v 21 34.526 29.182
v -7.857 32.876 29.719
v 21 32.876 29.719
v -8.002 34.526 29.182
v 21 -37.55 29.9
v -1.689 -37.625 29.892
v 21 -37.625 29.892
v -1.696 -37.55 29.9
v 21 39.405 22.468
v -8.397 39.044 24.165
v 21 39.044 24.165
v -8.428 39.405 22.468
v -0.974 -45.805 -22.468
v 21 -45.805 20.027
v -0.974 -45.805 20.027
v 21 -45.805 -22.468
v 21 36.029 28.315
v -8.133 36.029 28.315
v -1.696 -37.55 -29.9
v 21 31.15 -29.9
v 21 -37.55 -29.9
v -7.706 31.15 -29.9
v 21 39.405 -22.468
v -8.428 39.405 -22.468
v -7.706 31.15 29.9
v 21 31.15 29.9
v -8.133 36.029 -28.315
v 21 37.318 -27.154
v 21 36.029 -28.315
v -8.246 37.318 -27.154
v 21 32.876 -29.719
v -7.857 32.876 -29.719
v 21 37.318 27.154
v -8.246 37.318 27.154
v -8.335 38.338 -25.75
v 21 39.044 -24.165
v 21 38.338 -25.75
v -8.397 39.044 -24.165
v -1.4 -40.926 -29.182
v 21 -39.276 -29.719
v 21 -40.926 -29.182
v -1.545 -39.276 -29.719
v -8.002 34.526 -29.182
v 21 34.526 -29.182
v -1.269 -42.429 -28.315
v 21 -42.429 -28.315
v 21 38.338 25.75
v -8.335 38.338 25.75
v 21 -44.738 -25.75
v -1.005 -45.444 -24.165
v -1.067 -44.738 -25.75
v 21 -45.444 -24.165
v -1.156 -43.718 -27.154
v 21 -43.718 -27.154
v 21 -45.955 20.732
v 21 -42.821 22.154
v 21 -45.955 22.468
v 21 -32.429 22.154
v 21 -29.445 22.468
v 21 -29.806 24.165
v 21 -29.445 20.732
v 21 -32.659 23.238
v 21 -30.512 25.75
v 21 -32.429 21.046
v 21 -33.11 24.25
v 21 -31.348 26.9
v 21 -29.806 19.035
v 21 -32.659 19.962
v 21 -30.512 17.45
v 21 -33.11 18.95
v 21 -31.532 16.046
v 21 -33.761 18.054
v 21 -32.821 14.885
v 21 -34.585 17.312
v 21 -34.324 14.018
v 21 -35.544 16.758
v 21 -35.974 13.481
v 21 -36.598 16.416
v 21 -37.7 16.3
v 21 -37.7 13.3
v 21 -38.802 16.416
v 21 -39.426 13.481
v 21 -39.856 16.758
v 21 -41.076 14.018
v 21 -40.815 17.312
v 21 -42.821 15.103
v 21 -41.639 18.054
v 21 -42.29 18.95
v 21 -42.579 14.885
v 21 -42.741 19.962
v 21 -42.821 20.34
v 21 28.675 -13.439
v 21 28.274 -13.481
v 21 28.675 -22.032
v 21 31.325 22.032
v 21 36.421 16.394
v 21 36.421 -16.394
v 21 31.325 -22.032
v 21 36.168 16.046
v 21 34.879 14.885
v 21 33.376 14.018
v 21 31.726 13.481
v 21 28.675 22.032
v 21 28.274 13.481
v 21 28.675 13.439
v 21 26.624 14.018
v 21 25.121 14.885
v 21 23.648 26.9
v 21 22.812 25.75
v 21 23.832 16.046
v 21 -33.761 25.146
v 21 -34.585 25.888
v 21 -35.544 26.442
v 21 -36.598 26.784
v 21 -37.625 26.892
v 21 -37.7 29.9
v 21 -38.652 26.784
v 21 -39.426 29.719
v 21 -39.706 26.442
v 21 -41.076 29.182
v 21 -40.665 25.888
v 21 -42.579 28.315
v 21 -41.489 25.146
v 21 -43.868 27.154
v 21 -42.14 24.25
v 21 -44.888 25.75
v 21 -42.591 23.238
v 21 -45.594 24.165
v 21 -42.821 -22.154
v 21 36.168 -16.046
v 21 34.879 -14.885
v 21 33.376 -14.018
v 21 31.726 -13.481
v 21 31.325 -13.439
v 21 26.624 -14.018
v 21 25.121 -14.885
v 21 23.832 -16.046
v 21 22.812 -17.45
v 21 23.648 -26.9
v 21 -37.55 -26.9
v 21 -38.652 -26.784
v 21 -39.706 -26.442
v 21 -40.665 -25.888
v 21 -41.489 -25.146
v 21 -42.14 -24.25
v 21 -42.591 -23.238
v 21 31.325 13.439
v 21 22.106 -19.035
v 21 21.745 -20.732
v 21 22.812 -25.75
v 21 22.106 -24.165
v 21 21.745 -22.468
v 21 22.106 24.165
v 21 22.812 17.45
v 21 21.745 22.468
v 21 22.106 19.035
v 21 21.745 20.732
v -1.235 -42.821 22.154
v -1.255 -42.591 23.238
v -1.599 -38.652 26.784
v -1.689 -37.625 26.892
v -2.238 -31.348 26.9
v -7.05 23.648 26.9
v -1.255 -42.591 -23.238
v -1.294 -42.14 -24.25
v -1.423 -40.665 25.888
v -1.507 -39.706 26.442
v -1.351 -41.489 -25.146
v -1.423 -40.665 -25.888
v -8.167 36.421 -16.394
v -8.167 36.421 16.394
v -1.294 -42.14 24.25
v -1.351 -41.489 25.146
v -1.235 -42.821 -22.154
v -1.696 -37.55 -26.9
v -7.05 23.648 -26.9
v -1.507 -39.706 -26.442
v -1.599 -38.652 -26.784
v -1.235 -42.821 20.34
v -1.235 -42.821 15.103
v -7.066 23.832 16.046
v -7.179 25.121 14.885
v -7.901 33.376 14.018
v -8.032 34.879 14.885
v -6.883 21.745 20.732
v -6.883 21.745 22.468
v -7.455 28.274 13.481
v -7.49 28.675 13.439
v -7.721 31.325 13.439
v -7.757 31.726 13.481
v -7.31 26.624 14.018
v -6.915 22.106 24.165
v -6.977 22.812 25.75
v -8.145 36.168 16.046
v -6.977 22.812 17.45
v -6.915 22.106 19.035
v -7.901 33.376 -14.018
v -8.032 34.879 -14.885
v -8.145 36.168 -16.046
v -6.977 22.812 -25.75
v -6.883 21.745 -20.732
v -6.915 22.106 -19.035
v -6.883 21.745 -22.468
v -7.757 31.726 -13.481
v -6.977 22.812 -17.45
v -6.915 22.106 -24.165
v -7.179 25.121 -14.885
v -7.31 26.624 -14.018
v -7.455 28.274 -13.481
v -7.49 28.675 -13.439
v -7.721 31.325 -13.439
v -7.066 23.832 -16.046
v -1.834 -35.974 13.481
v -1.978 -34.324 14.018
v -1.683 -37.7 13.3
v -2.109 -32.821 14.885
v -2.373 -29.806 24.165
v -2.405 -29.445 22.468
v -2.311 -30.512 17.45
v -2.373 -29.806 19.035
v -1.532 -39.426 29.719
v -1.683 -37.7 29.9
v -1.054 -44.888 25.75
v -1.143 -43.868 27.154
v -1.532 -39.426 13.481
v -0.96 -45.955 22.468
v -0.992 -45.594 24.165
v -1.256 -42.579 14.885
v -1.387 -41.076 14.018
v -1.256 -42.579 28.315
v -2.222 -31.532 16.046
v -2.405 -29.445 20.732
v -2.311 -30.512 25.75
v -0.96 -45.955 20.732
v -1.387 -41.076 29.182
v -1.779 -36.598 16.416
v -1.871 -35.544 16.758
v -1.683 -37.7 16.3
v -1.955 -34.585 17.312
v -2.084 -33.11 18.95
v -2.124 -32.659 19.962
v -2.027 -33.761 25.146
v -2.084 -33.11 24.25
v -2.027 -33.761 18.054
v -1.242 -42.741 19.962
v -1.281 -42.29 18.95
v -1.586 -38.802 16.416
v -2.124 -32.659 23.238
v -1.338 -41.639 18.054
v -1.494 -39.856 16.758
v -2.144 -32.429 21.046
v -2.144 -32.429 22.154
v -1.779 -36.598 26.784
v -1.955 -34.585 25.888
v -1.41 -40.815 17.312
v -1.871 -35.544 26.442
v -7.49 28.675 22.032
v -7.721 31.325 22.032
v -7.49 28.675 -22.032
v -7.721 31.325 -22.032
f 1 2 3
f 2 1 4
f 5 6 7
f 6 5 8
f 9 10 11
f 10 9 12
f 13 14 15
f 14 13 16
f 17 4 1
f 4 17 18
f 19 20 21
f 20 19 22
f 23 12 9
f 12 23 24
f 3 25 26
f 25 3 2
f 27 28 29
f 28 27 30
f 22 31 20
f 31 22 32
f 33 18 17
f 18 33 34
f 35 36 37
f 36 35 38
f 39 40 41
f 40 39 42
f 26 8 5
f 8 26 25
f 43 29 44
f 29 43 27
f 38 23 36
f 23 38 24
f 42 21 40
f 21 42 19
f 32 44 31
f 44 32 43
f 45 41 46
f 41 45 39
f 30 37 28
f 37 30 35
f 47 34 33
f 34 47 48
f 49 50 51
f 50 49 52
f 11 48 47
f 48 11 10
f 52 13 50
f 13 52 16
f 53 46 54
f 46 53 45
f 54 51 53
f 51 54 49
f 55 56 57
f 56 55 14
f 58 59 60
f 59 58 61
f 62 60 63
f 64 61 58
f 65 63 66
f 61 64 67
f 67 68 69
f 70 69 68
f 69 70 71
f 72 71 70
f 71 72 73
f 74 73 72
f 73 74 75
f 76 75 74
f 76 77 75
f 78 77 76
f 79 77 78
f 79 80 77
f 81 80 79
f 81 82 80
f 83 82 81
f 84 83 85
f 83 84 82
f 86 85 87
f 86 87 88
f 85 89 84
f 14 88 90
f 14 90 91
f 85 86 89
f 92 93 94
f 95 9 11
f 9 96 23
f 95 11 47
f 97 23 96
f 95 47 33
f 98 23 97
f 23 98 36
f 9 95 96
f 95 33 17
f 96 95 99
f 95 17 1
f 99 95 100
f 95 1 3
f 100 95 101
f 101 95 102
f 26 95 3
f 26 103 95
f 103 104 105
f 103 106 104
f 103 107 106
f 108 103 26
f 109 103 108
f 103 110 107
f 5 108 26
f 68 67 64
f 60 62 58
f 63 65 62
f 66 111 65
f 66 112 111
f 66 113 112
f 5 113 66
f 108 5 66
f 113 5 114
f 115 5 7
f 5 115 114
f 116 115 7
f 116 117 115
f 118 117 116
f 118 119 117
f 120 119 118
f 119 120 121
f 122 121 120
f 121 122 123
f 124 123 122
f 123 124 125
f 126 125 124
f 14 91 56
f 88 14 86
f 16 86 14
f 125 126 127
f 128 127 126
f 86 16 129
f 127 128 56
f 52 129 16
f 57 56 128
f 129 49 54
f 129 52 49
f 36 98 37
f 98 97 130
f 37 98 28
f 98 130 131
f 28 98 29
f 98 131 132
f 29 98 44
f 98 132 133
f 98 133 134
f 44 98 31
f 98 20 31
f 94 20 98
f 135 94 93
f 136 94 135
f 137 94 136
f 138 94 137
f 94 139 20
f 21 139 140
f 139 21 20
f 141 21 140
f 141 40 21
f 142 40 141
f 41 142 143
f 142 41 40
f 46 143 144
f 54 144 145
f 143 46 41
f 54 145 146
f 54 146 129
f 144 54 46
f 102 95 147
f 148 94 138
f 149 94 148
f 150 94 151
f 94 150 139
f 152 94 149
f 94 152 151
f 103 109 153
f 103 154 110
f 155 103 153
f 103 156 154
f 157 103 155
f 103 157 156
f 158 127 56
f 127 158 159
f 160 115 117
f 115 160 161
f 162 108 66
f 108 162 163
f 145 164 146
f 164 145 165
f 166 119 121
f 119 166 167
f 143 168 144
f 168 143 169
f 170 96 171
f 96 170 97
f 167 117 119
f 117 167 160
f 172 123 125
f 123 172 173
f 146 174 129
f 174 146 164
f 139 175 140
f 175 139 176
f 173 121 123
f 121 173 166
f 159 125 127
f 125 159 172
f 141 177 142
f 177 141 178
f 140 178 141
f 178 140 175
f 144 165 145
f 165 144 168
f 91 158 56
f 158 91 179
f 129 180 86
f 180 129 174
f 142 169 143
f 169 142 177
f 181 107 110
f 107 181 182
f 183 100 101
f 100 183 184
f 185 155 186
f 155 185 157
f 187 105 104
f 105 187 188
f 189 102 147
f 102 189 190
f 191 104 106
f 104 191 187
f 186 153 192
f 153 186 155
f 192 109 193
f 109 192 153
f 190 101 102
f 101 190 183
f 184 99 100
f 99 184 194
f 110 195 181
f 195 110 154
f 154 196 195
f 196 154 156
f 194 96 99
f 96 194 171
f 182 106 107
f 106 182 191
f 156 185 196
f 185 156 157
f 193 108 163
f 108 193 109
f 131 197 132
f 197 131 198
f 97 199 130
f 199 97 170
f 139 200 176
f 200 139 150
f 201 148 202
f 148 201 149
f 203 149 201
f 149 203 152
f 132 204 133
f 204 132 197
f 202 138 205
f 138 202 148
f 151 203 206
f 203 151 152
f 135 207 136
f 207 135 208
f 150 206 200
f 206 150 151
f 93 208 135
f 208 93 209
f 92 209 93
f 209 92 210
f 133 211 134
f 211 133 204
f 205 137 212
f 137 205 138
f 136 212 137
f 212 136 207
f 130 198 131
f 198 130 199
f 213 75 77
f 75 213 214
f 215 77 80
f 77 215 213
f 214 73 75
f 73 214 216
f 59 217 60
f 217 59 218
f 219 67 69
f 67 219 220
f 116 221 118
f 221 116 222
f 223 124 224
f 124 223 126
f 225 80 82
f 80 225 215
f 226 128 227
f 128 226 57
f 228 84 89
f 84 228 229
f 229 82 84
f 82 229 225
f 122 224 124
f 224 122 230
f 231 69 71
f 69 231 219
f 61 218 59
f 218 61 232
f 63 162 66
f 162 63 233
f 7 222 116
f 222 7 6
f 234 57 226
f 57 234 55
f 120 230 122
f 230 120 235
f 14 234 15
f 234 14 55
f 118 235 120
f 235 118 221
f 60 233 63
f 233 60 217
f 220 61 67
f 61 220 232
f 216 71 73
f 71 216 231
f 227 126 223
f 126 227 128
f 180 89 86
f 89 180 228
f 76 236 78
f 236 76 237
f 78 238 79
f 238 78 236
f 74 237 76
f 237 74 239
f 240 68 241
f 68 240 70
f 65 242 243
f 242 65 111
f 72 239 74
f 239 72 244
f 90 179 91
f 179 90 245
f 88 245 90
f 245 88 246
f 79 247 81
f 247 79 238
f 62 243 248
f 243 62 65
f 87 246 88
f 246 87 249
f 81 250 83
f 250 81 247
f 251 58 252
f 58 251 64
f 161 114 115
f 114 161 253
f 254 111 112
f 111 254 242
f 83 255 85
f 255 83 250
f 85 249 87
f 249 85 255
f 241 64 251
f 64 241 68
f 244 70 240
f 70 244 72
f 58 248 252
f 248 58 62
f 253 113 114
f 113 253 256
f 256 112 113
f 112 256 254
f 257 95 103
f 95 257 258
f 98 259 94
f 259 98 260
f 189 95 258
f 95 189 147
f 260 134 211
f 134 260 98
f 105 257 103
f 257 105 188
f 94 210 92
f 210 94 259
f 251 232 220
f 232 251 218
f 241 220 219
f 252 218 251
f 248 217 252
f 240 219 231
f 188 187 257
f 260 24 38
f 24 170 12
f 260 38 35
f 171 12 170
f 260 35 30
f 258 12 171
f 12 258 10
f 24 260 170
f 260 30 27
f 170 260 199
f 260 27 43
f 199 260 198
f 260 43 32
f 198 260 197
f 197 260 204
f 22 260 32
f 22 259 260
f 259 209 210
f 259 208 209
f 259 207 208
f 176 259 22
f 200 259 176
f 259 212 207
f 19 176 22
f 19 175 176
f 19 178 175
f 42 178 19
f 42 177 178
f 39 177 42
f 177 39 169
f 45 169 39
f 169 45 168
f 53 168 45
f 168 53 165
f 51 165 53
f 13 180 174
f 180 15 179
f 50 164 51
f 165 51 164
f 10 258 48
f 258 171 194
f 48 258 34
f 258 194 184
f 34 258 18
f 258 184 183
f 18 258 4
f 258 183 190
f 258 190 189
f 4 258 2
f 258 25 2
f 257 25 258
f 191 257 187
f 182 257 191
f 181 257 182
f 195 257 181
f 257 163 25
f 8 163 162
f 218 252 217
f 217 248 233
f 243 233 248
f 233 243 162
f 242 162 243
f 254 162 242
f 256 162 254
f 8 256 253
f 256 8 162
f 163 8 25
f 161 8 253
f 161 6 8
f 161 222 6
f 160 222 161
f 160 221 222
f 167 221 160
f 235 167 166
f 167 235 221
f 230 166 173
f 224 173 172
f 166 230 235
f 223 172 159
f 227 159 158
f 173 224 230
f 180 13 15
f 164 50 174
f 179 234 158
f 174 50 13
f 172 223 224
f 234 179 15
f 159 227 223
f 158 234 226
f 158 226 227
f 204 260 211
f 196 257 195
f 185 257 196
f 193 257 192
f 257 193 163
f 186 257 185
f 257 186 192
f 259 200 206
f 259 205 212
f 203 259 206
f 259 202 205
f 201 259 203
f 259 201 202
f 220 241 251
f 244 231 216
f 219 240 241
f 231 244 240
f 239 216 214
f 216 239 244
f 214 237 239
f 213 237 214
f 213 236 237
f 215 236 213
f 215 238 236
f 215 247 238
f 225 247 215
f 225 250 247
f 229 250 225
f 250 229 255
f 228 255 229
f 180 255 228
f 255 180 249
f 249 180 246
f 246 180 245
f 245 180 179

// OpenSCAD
// file: ../../../scadLib/library.scad
////////////////////////////////////////////////////////////////////////////////////////////////////
module plate4Point(x,y,z,d){
	hull(){
		color("green") translate([(x/2)-(d/2) ,(y/2) -(d/2),0]) cylinder(h=z, d=d, center=true);
		color("blue")  translate([(x/2)-(d/2) ,-(y/2)+(d/2),0]) cylinder(h=z, d=d, center=true);
		color("red")   translate([-(x/2)+(d/2),(y/2) -(d/2),0]) cylinder(h=z, d=d, center=true);
		color("grey")  translate([-(x/2)+(d/2),-(y/2)+(d/2),0]) cylinder(h=z, d=d, center=true);
	}
}
////////////////////////////////////////////////////////////////////////////////////////////////////
module plate2Point(x,z,d){
	hull(){
		color("green") translate([(x/2) -(d/2),0 ,0]) cylinder(h=z, d=d, center=true);
		color("blue")  translate([-(x/2)+(d/2),0 ,0]) cylinder(h=z, d=d, center=true);
	}
}
////////////////////////////////////////////////////////////////////////////////////////////////////
module triagleSphere(iX, iY, iZ, iD){
	
	halfD = iD/2;
	hull(){
		color("red")		translate([-halfD   , (iY/2)-halfD, halfD]) sphere(d=iD);	
		color("grey")		translate([-iX+halfD, (iY/2)-halfD, halfD]) sphere(d=iD);
		color("green")	translate([-halfD   , (iY/2)-halfD, iZ-halfD]) sphere(d=iD);

		color("red")		translate([-halfD   , -(iY/2)+halfD, halfD]) sphere(d=iD);
		color("grey")		translate([-iX+halfD, -(iY/2)+halfD, halfD]) sphere(d=iD);
		color("green")	translate([-halfD   , -(iY/2)+halfD, iZ-halfD]) sphere(d=iD);
	}
}
////////////////////////////////////////////////////////////////////////////////////////////////////
module cubeSphere(iX, iYm, iZ, iD){

	edgeDiamitor = iD;
	
	hull(){
		for(a=[[1,1,1],[-1,1,1],[1,-1,1],[-1,-1,1],[1,1,-1],[-1,1,-1],[1,-1,-1],[-1,-1,-1]]){
			translate([
				a[0]*((iX/2) -(edgeDiamitor/2)), 
				a[1]*((iYm/2)-(edgeDiamitor/2)), 
				a[2]*((iZ/2) -(edgeDiamitor/2))]) sphere(d=edgeDiamitor);
		}
	}
} 
////////////////////////////////////////////////////////////////////////////////////////////////////
module mText(l, letter_size = 10, letter_height = 4) {
// Use linear_extrude() to make the letters 3D objects as they
// are only 2D shapes when only using text()
	font = "Bitstream Vera Sans:style=Bold" ;
	linear_extrude(height = letter_height) {
		text(l, size = letter_size, font = font, halign = "center", valign = "center", $fn = 16);
	}
}
module roundedTrapezoid(x1=1, y1=1,x2=1, y2=1, z1=1, d1=6){
  hull(){
  // top Right
    translate([-x1,y1,0])
      cylinder(h=z1,d=d1,center=true);
  // Top Left
    translate([-x1,-y1,0])
      cylinder(h=z1,d=d1,center=true);
  // Bottom Right
    translate([-x2,y2,0])
      cylinder(h=z1,d=d1,center=true);
  // Bottom Left
    translate([-x2,-y2,0])
      cylinder(h=z1,d=d1,center=true);
  }
}
// main file
$fn=30;
use<../../../scadLib/library.scad>;

boxWidth  = 380;
boxDepth  = 100;
boxHeigth = 43.2;

boxEarWidth  = 52;
boxEarDepth  = 39.3;
boxEarHeigth = 43.2;
boxEarThick  = 2.15;

boxEarMountDiamiter  = 4.5;
boxEarMountSperation = 15;

boxEarMountWidth  = 11;
boxEarMountHeigth = 7.3;
boxEarMountEdgeW  = 3.5;
boxEarMountEdgeH  = 2.2;


fromClampToBarCenter = 77;
barDiamiter = 10.6;

fromClampToPowerCord = 16;

wallThickness = 3;
outterCornerDiamiter = barDiamiter+wallThickness*2;


//ngBox();
// Cord
// translate([0,-fromClampToPowerCord,0]) rotate([0,90,0]) cylinder(h=100, d=6, center=true);
difference(){
  translate([0,30,0])
    mountCutEarSlot();
   translate([-10,0,0])
    slatCut();
//  translate([20,0,0]) mirror([90,0,0])
//   slatCut();
}
//----------------------------------------------------------------------------
module slatCut(){
  hull(){
    rotate([0,0,5])
      cube([10,100,100],center=true); 
    translate([-25,0,0])
      rotate([0,0,5])
      cube([10,100,100],center=true); 
  }    
}
//----------------------------------------------------------------------------
module mountCutEarSlot(){
  difference(){
   mount();
   translate([0,.25,0])
    translate([0,(boxEarDepth/2)-(boxEarThick/2),0]) color("green") scale([1,1,1.02]) ngBoxEar();
   translate([0,-.25,0])
    translate([0,(boxEarDepth/2)-(boxEarThick/2),0]) color("green") scale([1,1,1.02]) ngBoxEar();
  }
}
//----------------------------------------------------------------------------
module mount(){
  translate([0,-(fromClampToBarCenter/2)+(outterCornerDiamiter/2)-(wallThickness),0]) rotate([0,90,0])
    difference(){
      plate4Point(
        boxEarHeigth+(outterCornerDiamiter),
        fromClampToBarCenter+(outterCornerDiamiter/2),
        boxEarWidth-10,
        outterCornerDiamiter);
      plate4Point(
        boxEarHeigth+(outterCornerDiamiter)-wallThickness*2,
        fromClampToBarCenter+(outterCornerDiamiter/2)-wallThickness*2,
        boxEarHeigth+1,outterCornerDiamiter-6);
    }
  for(a=[1,-1]){
    translate([0,0,a*(boxEarHeigth/2)]) rotate([0,90,0])
      cylinder(d=outterCornerDiamiter, h=boxEarWidth-10, center=true);
  }
  translate([
    0,
    -(fromClampToBarCenter)+(outterCornerDiamiter/2)+(wallThickness/2)-.5,
    (boxEarHeigth/2)]) rotate([0,90,0]) color("orange")
    barMount(boxEarWidth-10);
}
//----------------------------------------------------------------------------
module barMount(iLen){
  difference(){
    cylinder(d=outterCornerDiamiter, h=iLen, center=true);
    cylinder(d=barDiamiter, h=iLen+2, center=true);
  }
}
//----------------------------------------------------------------------------
module ngBox(iShowEars=False){
  
  cube([boxWidth,boxDepth,boxHeigth],center=true);
  
}

//----------------------------------------------------------------------------
module ngBoxEar(){
  difference(){
    cube([boxEarWidth,boxEarDepth,boxEarHeigth],center=true);

    translate([boxEarThick,boxEarThick,0])
      cube([boxEarWidth,boxEarDepth,boxEarHeigth+1],center=true);
    for(a=[[1,1],[1,-1],[-1,1],[-1,-1]]){
      rotate([0,90,0])
      translate([a[0]*boxEarMountSperation/2,a[1]*boxEarMountSperation/2,0])
        cylinder(d=boxEarMountDiamiter,h=boxEarWidth+2,center=true);
    }
    /*
    for(c=[1,-1]){
      translate([
        (boxEarWidth/2)-(boxEarMountWidth/2)-(boxEarMountEdgeW),
        0,
        c*((boxEarHeigth/2)-(boxEarMountHeigth/2)-(boxEarMountEdgeH))])
      hull(){
        for(b=[1,-1]){
          rotate([90,0,0])
          translate([b*((boxEarMountHeigth/2)-(boxEarMountHeigth)),0,0])
            cylinder(d=boxEarMountHeigth,h=boxEarDepth+2,center=true);
        }
      }
    }*/
  }
}
